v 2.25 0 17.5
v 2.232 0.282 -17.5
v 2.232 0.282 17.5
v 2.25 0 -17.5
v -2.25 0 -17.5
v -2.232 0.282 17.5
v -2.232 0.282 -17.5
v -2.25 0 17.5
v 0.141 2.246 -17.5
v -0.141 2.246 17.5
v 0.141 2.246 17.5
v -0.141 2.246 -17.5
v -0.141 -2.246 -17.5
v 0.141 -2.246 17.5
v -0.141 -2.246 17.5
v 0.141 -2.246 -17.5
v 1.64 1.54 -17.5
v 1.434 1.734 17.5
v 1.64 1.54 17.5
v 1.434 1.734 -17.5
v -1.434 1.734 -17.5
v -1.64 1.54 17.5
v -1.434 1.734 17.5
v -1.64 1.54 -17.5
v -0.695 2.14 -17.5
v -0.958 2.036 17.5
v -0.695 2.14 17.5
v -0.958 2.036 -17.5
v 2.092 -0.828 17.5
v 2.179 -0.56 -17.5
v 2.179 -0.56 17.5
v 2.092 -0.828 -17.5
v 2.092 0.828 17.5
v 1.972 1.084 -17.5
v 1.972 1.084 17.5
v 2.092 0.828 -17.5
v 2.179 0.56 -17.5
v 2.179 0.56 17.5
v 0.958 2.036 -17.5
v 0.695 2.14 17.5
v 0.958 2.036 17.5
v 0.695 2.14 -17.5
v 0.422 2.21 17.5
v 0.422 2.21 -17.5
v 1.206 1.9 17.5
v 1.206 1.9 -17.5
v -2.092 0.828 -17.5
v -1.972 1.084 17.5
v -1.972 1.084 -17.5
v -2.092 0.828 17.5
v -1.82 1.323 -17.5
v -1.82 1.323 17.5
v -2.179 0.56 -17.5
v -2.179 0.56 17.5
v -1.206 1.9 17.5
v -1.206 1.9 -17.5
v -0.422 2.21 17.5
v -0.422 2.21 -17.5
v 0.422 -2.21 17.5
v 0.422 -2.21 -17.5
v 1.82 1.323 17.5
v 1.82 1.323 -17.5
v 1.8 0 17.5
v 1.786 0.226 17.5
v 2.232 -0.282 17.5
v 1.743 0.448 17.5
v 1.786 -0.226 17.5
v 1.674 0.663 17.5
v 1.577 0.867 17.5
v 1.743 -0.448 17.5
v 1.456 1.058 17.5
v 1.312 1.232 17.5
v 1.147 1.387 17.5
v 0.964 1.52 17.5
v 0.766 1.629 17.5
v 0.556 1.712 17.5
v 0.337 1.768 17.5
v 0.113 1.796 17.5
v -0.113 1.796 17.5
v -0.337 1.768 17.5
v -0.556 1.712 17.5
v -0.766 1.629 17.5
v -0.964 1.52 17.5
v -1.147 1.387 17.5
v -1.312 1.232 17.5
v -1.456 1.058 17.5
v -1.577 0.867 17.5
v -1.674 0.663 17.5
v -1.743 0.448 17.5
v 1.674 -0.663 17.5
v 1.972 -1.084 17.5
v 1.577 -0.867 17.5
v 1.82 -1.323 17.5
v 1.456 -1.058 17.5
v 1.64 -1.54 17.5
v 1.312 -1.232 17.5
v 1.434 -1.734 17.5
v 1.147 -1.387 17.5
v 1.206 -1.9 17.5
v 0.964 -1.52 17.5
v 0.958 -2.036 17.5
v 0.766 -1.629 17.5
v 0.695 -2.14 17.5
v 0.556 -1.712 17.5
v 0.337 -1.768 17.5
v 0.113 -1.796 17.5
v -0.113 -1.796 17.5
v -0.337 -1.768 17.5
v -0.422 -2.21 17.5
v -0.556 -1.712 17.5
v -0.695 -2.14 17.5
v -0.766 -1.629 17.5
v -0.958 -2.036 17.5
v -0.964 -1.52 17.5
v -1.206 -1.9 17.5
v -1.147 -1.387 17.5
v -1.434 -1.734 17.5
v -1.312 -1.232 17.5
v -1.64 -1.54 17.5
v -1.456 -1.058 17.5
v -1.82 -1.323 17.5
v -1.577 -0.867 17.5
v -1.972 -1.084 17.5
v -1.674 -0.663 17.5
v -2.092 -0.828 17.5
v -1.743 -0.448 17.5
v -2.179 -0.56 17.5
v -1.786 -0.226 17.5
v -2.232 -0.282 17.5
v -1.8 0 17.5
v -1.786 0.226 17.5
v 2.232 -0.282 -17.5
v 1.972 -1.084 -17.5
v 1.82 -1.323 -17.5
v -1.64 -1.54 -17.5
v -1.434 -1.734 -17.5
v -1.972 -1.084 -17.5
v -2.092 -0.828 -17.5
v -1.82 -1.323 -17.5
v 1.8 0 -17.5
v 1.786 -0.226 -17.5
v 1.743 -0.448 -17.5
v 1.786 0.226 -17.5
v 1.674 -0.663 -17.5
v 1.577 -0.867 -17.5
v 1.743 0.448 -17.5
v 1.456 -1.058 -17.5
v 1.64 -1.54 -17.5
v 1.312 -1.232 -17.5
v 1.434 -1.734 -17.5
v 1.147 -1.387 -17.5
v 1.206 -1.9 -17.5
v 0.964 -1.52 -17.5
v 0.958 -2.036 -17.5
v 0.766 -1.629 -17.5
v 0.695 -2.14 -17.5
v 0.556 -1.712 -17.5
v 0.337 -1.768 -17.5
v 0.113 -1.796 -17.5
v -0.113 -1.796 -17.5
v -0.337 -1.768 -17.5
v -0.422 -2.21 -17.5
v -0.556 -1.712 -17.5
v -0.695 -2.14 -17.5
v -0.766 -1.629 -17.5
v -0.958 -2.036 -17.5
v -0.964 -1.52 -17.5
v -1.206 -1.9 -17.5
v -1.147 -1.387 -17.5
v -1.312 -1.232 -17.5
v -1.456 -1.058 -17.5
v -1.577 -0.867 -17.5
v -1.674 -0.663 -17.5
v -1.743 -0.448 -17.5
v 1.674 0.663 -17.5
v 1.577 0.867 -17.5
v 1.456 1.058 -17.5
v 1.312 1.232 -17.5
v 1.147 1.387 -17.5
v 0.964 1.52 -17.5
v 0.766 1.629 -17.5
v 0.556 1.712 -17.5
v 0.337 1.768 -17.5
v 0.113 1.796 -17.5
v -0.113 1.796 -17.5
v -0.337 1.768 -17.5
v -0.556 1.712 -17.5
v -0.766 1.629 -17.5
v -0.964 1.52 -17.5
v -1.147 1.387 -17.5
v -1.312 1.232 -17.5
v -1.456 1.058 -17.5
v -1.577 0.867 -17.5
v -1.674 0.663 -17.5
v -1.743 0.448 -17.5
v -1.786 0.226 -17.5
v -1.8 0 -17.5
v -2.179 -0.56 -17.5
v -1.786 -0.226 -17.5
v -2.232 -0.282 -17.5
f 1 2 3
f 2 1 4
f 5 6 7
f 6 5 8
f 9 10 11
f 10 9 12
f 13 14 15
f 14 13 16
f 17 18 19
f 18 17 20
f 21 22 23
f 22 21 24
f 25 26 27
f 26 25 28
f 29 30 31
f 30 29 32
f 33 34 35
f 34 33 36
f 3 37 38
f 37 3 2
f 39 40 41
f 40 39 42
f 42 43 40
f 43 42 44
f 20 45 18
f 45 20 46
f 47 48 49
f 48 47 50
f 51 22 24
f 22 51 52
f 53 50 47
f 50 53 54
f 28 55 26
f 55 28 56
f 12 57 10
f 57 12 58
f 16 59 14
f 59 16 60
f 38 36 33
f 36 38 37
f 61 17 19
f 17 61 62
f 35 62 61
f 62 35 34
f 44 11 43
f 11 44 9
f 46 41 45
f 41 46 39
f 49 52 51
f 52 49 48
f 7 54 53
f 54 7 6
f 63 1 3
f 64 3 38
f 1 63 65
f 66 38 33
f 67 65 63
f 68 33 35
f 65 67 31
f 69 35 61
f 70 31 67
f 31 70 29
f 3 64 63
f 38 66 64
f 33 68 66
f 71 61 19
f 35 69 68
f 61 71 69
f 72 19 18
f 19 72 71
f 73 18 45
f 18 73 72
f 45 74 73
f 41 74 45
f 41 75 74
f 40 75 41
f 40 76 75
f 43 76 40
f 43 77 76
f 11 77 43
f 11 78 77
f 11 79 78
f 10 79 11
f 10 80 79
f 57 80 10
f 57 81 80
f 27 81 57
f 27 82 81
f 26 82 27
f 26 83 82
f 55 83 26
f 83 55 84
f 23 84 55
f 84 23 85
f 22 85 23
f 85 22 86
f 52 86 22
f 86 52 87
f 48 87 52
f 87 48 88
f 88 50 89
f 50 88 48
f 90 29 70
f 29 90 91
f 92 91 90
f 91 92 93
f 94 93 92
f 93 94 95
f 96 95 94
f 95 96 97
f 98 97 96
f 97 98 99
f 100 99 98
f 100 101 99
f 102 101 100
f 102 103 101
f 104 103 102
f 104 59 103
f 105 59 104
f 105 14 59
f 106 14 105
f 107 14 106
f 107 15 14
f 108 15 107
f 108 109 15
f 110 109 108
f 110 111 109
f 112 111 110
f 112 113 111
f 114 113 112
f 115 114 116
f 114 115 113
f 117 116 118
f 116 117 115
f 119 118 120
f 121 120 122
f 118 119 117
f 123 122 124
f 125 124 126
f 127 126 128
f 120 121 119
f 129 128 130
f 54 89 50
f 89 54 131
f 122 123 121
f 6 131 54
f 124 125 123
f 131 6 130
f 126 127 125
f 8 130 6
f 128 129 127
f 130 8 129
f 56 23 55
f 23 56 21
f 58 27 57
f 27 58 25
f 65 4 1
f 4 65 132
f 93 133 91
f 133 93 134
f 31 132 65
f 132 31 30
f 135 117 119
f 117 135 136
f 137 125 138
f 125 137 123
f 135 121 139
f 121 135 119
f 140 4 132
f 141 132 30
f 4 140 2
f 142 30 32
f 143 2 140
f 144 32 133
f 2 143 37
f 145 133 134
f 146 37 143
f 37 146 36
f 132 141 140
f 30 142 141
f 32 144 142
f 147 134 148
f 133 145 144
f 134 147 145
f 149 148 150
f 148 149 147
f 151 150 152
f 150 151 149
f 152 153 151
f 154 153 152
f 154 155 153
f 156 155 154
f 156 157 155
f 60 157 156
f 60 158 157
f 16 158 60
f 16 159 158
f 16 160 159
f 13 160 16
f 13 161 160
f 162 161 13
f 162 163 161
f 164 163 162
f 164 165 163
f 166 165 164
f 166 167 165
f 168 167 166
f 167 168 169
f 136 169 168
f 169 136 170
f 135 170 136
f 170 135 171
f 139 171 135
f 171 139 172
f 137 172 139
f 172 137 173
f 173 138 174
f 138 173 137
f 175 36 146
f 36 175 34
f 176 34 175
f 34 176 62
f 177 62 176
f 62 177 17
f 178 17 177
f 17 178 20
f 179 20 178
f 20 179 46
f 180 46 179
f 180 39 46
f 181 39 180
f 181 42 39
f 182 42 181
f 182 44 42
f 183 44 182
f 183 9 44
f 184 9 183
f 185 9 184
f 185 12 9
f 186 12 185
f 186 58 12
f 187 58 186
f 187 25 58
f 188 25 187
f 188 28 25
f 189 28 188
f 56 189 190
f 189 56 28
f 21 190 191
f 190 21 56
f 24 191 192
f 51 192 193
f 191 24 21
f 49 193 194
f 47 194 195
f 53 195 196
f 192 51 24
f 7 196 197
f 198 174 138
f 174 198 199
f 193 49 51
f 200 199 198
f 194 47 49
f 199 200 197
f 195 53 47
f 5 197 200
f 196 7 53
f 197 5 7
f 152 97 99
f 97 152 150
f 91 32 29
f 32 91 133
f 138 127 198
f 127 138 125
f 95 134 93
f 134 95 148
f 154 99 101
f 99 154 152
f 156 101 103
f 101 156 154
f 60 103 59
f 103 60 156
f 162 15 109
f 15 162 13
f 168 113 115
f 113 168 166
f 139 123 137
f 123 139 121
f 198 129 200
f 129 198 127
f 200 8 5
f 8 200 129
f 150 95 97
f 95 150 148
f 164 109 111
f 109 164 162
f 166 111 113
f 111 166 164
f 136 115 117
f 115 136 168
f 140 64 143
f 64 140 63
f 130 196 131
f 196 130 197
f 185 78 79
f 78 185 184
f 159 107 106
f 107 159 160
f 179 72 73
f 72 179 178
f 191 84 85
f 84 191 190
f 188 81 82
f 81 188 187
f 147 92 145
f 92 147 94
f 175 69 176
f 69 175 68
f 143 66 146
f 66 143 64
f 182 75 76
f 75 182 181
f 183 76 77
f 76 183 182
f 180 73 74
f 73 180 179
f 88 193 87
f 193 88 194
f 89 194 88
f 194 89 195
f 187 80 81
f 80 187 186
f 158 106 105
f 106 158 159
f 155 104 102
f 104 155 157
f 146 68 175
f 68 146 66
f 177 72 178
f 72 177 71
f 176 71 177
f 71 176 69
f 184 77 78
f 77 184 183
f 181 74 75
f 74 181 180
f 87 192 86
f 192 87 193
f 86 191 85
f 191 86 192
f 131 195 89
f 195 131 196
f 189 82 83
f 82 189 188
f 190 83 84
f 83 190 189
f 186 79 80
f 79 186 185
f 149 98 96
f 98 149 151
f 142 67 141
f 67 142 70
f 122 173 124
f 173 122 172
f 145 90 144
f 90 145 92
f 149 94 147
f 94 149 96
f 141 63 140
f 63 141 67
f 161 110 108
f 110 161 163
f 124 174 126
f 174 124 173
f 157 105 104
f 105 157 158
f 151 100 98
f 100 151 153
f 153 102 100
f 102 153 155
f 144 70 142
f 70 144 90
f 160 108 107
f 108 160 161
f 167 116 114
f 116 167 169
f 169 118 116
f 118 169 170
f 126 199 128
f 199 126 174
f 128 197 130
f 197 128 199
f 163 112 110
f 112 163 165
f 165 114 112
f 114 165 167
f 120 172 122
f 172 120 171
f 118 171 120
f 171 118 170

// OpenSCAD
$fn = 50;


difference() {
	union() {
		translate(v = [0, 0, -17.5000000000]) {
			cylinder(h = 35, r = 2.2500000000);
		}
	}
	union() {
		translate(v = [0, 0, -100.0000000000]) {
			cylinder(h = 200, r = 1.8000000000);
		}
	}
}
